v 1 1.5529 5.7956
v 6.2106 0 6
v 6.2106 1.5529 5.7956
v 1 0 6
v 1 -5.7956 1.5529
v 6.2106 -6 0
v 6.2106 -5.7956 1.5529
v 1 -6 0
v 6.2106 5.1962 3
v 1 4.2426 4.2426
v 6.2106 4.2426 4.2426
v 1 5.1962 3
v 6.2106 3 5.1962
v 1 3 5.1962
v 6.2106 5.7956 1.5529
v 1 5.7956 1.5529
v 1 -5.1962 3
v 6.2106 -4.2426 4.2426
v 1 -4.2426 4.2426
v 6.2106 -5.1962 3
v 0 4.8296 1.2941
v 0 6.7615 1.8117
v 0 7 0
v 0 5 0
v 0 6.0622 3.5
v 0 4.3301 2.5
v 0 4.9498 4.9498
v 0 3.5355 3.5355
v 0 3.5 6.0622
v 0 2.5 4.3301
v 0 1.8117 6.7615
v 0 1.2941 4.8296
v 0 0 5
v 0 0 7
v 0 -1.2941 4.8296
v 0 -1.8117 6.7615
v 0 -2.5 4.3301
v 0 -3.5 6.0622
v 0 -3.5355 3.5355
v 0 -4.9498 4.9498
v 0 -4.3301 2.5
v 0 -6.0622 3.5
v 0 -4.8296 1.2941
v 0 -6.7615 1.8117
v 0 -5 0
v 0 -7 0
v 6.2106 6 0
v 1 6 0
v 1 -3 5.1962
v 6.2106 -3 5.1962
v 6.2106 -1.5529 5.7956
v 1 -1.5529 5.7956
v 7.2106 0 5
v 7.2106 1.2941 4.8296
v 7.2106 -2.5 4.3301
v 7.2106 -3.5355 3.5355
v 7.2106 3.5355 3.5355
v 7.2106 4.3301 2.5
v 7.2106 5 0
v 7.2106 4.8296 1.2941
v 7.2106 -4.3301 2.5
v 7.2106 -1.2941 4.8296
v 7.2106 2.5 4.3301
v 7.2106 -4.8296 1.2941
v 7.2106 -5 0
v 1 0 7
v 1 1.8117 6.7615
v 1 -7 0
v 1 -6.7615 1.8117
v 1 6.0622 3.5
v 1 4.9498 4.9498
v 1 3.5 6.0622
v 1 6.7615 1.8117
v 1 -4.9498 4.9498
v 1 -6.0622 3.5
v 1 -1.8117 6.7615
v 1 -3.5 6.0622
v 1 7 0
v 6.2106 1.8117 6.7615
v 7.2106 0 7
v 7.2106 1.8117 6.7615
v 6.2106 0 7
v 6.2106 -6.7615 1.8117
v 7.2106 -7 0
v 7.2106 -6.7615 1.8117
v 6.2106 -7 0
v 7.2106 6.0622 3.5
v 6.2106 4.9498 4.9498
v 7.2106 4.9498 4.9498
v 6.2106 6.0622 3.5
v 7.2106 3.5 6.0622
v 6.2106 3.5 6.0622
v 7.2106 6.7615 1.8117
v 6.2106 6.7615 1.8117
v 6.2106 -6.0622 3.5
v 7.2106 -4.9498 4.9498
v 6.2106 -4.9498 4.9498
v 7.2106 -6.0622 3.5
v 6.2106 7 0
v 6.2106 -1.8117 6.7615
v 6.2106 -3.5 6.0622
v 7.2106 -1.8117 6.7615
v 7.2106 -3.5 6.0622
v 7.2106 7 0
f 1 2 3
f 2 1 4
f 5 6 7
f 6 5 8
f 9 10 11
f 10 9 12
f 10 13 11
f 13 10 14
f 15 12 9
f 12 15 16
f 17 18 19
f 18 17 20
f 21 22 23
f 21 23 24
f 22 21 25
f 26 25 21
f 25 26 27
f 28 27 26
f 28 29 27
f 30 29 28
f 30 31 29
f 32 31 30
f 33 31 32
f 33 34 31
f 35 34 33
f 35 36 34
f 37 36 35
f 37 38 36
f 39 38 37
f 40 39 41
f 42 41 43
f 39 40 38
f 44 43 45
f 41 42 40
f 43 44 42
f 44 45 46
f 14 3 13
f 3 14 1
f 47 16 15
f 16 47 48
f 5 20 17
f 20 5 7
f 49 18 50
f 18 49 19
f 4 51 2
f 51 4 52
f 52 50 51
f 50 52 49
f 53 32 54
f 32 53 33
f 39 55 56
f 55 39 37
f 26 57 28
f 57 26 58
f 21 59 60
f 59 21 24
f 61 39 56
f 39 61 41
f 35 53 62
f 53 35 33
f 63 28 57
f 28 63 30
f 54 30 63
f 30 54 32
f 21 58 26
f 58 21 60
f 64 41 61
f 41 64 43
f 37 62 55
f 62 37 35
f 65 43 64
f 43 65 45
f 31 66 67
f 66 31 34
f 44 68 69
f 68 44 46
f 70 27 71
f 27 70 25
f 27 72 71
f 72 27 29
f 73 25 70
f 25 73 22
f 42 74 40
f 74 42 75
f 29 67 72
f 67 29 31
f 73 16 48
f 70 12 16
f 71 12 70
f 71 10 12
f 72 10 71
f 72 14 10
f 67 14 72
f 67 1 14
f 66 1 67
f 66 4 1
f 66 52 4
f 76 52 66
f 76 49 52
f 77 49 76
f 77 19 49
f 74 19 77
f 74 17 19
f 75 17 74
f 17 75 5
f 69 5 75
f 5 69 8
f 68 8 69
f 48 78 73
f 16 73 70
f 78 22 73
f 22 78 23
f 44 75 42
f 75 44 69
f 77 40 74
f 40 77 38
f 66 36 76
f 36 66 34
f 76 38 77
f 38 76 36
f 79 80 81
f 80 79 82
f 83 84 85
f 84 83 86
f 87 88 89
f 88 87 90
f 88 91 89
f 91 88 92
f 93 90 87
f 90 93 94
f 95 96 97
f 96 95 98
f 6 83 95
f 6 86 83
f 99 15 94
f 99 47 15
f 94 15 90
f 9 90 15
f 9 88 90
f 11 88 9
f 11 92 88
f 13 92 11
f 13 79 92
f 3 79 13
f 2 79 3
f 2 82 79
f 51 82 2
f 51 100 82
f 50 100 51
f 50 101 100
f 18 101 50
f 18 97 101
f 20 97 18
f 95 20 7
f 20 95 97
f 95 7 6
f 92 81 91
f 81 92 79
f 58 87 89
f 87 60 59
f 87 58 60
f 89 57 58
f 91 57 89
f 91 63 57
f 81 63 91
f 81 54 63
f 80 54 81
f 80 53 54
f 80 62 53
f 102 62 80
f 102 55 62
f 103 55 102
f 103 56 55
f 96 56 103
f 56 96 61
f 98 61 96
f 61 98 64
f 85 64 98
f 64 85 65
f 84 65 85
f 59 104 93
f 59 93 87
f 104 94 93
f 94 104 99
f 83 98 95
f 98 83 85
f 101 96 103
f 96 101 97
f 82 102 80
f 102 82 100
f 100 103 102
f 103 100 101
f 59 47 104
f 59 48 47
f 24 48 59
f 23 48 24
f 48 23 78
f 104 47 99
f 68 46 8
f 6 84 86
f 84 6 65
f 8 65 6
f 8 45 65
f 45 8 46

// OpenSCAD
// file: ../build_environments.scad
// build_environments.scad: modules to build level sections
//

module pool(diameter=10.0, wall_height=2.0, step_width=3.0, connections=[])
{
    difference() {
        union() {
        difference() {
            cylinder(h=0.5,r1=diameter+step_width,r2=diameter+step_width,$fn=48);
            translate([0,0,-0.1])
                cylinder(h=0.7,r1=diameter,r2=diameter,$fn=48);
        }
        difference() {
            cylinder(h=wall_height,r1=diameter+step_width+1.0,r2=diameter+step_width+1.0,$fn=48);
            translate([0,0,-0.1])
                cylinder(h=wall_height+0.2,r1=diameter+step_width,r2=diameter+step_width,$fn=48);
        }
        }
    
        for (c = connections)
        {
            rotate([0,90,0]) {
                angle = atan2(c[1],c[0]);
                rotate([-angle,0,0]) {
                    cylinder(h=diameter+5.0,r1=c[2],r2=c[2],$fn=48);
                }
            }
        }
    }
}

module straight(length=10.0, width=2.0, dy1=0.0, dy2=0.0, dz=0.0)
{
    dims = [0, 0, 0, 0, 0, (dz/length)];
    matrix = [
        [ 1, dims[0], dims[1], 0 ],
        [ dims[2], 1, dims[4], 0 ],
        [ dims[5], dims[3], 1, 0 ],
        [ 0, 0, 0, 1 ]
    ];
    multmatrix(matrix)
    difference() {
        translate([dy1,0,0])
        union() {
            rotate([0,90,0]) {
                difference() {
                    cylinder(h=(length-dy1-dy2),r1=width+1.0,r2=width+1.0,$fn=24);
                    translate([0,0,-0.1])
                        cylinder(h=(length-dy1-dy2+0.2),r1=width,r2=width,$fn=24);
                }
                difference() {
                    cylinder(h=1.0,r1=width+2.0,r2=width+2.0,$fn=24);
                    translate([0,0,-0.1])
                        cylinder(h=1.2,r1=width,r2=width,$fn=24);
                }
                translate([0,0,(length-dy1-dy2)-1.0]) {
                    difference() {
                        cylinder(h=1.0,r1=width+2.0,r2=width+2.0,$fn=24);
                        translate([0,0,-0.1])
                            cylinder(h=1.2,r1=width,r2=width,$fn=24);
                    }
                }
            }
        }
        translate([0,0,-(2*width+4.0)/2])
            cube([3*length,3*length,2*width+4.0],center=true);
    }
}

module curve(p0=[0,0], center=[0,0], dir=1, angle=0.0, width=2.0)
{
    radius = sqrt((p0[0]-center[0])*(p0[0]-center[0]) + (p0[1]-center[1])*(p0[1]-center[1]));
    if (dir == 0) {
        difference() {
            rotate([0,0,-90])
            difference() {
                rotate_extrude(angle = angle, convexity = 10, $fn=32)
                    translate([radius, 0, 0])
                        circle(r = width+1.0,$fn=24);
                rotate([0,0,-1.0])
                    rotate_extrude(angle = angle+2.0, convexity = 10, $fn=32)
                        translate([radius, 0, 0])
                            circle(r = width,$fn=24);
            }
            translate([0,0,-(2*width+4.0)/2])
                cube([5*radius,5*radius,2*width+4.0],center=true);
        }
    }
    else {
        difference() {
            rotate([0,0,90])
            difference() {
                rotate_extrude(angle = -angle, convexity = 10, $fn=32)
                    translate([radius, 0, 0])
                        circle(r = width+1.0,$fn=24);
                rotate([0,0,1.0])
                    rotate_extrude(angle = -angle-2.0, convexity = 10, $fn=32)
                        translate([radius, 0, 0])
                            circle(r = width,$fn=24);
            }
            translate([0,0,-(2*width+4.0)/2])
                cube([5*radius,5*radius,2*width+4.0],center=true);
        }
    }

}

// test pool
//pool(diameter=12.0000, wall_height=3.0000, step_width=3.0000, connections=[[0.0000,-26.0000,2.0000], [23.6074,0.0000,2.0000]]);

// test straight, slope
//straight(length=26.0000, width=2.0000, dy1=11.8322, dy2=6.7082, dz=0.0000);
//straight(length=29.1549, width=12.0000, dy1=0.0000, dy2=0.0000, dz=-15.0000);

// test curve
//curve(p0=[23.6074, 0.0000], center=[23.6074, 5.0000], dir=0, angle=60.1011, width=2.0000);
//curve(p0=[33.6426, 12.4219], center=[37.9771, 9.9295], dir=1, angle=120.4627, width=2.0000);
// main file
use <../build_environments.scad>;
straight(length=7.2106, width=5.0000, dy1=0.0000, dy2=0.0000, dz=0.0000);
